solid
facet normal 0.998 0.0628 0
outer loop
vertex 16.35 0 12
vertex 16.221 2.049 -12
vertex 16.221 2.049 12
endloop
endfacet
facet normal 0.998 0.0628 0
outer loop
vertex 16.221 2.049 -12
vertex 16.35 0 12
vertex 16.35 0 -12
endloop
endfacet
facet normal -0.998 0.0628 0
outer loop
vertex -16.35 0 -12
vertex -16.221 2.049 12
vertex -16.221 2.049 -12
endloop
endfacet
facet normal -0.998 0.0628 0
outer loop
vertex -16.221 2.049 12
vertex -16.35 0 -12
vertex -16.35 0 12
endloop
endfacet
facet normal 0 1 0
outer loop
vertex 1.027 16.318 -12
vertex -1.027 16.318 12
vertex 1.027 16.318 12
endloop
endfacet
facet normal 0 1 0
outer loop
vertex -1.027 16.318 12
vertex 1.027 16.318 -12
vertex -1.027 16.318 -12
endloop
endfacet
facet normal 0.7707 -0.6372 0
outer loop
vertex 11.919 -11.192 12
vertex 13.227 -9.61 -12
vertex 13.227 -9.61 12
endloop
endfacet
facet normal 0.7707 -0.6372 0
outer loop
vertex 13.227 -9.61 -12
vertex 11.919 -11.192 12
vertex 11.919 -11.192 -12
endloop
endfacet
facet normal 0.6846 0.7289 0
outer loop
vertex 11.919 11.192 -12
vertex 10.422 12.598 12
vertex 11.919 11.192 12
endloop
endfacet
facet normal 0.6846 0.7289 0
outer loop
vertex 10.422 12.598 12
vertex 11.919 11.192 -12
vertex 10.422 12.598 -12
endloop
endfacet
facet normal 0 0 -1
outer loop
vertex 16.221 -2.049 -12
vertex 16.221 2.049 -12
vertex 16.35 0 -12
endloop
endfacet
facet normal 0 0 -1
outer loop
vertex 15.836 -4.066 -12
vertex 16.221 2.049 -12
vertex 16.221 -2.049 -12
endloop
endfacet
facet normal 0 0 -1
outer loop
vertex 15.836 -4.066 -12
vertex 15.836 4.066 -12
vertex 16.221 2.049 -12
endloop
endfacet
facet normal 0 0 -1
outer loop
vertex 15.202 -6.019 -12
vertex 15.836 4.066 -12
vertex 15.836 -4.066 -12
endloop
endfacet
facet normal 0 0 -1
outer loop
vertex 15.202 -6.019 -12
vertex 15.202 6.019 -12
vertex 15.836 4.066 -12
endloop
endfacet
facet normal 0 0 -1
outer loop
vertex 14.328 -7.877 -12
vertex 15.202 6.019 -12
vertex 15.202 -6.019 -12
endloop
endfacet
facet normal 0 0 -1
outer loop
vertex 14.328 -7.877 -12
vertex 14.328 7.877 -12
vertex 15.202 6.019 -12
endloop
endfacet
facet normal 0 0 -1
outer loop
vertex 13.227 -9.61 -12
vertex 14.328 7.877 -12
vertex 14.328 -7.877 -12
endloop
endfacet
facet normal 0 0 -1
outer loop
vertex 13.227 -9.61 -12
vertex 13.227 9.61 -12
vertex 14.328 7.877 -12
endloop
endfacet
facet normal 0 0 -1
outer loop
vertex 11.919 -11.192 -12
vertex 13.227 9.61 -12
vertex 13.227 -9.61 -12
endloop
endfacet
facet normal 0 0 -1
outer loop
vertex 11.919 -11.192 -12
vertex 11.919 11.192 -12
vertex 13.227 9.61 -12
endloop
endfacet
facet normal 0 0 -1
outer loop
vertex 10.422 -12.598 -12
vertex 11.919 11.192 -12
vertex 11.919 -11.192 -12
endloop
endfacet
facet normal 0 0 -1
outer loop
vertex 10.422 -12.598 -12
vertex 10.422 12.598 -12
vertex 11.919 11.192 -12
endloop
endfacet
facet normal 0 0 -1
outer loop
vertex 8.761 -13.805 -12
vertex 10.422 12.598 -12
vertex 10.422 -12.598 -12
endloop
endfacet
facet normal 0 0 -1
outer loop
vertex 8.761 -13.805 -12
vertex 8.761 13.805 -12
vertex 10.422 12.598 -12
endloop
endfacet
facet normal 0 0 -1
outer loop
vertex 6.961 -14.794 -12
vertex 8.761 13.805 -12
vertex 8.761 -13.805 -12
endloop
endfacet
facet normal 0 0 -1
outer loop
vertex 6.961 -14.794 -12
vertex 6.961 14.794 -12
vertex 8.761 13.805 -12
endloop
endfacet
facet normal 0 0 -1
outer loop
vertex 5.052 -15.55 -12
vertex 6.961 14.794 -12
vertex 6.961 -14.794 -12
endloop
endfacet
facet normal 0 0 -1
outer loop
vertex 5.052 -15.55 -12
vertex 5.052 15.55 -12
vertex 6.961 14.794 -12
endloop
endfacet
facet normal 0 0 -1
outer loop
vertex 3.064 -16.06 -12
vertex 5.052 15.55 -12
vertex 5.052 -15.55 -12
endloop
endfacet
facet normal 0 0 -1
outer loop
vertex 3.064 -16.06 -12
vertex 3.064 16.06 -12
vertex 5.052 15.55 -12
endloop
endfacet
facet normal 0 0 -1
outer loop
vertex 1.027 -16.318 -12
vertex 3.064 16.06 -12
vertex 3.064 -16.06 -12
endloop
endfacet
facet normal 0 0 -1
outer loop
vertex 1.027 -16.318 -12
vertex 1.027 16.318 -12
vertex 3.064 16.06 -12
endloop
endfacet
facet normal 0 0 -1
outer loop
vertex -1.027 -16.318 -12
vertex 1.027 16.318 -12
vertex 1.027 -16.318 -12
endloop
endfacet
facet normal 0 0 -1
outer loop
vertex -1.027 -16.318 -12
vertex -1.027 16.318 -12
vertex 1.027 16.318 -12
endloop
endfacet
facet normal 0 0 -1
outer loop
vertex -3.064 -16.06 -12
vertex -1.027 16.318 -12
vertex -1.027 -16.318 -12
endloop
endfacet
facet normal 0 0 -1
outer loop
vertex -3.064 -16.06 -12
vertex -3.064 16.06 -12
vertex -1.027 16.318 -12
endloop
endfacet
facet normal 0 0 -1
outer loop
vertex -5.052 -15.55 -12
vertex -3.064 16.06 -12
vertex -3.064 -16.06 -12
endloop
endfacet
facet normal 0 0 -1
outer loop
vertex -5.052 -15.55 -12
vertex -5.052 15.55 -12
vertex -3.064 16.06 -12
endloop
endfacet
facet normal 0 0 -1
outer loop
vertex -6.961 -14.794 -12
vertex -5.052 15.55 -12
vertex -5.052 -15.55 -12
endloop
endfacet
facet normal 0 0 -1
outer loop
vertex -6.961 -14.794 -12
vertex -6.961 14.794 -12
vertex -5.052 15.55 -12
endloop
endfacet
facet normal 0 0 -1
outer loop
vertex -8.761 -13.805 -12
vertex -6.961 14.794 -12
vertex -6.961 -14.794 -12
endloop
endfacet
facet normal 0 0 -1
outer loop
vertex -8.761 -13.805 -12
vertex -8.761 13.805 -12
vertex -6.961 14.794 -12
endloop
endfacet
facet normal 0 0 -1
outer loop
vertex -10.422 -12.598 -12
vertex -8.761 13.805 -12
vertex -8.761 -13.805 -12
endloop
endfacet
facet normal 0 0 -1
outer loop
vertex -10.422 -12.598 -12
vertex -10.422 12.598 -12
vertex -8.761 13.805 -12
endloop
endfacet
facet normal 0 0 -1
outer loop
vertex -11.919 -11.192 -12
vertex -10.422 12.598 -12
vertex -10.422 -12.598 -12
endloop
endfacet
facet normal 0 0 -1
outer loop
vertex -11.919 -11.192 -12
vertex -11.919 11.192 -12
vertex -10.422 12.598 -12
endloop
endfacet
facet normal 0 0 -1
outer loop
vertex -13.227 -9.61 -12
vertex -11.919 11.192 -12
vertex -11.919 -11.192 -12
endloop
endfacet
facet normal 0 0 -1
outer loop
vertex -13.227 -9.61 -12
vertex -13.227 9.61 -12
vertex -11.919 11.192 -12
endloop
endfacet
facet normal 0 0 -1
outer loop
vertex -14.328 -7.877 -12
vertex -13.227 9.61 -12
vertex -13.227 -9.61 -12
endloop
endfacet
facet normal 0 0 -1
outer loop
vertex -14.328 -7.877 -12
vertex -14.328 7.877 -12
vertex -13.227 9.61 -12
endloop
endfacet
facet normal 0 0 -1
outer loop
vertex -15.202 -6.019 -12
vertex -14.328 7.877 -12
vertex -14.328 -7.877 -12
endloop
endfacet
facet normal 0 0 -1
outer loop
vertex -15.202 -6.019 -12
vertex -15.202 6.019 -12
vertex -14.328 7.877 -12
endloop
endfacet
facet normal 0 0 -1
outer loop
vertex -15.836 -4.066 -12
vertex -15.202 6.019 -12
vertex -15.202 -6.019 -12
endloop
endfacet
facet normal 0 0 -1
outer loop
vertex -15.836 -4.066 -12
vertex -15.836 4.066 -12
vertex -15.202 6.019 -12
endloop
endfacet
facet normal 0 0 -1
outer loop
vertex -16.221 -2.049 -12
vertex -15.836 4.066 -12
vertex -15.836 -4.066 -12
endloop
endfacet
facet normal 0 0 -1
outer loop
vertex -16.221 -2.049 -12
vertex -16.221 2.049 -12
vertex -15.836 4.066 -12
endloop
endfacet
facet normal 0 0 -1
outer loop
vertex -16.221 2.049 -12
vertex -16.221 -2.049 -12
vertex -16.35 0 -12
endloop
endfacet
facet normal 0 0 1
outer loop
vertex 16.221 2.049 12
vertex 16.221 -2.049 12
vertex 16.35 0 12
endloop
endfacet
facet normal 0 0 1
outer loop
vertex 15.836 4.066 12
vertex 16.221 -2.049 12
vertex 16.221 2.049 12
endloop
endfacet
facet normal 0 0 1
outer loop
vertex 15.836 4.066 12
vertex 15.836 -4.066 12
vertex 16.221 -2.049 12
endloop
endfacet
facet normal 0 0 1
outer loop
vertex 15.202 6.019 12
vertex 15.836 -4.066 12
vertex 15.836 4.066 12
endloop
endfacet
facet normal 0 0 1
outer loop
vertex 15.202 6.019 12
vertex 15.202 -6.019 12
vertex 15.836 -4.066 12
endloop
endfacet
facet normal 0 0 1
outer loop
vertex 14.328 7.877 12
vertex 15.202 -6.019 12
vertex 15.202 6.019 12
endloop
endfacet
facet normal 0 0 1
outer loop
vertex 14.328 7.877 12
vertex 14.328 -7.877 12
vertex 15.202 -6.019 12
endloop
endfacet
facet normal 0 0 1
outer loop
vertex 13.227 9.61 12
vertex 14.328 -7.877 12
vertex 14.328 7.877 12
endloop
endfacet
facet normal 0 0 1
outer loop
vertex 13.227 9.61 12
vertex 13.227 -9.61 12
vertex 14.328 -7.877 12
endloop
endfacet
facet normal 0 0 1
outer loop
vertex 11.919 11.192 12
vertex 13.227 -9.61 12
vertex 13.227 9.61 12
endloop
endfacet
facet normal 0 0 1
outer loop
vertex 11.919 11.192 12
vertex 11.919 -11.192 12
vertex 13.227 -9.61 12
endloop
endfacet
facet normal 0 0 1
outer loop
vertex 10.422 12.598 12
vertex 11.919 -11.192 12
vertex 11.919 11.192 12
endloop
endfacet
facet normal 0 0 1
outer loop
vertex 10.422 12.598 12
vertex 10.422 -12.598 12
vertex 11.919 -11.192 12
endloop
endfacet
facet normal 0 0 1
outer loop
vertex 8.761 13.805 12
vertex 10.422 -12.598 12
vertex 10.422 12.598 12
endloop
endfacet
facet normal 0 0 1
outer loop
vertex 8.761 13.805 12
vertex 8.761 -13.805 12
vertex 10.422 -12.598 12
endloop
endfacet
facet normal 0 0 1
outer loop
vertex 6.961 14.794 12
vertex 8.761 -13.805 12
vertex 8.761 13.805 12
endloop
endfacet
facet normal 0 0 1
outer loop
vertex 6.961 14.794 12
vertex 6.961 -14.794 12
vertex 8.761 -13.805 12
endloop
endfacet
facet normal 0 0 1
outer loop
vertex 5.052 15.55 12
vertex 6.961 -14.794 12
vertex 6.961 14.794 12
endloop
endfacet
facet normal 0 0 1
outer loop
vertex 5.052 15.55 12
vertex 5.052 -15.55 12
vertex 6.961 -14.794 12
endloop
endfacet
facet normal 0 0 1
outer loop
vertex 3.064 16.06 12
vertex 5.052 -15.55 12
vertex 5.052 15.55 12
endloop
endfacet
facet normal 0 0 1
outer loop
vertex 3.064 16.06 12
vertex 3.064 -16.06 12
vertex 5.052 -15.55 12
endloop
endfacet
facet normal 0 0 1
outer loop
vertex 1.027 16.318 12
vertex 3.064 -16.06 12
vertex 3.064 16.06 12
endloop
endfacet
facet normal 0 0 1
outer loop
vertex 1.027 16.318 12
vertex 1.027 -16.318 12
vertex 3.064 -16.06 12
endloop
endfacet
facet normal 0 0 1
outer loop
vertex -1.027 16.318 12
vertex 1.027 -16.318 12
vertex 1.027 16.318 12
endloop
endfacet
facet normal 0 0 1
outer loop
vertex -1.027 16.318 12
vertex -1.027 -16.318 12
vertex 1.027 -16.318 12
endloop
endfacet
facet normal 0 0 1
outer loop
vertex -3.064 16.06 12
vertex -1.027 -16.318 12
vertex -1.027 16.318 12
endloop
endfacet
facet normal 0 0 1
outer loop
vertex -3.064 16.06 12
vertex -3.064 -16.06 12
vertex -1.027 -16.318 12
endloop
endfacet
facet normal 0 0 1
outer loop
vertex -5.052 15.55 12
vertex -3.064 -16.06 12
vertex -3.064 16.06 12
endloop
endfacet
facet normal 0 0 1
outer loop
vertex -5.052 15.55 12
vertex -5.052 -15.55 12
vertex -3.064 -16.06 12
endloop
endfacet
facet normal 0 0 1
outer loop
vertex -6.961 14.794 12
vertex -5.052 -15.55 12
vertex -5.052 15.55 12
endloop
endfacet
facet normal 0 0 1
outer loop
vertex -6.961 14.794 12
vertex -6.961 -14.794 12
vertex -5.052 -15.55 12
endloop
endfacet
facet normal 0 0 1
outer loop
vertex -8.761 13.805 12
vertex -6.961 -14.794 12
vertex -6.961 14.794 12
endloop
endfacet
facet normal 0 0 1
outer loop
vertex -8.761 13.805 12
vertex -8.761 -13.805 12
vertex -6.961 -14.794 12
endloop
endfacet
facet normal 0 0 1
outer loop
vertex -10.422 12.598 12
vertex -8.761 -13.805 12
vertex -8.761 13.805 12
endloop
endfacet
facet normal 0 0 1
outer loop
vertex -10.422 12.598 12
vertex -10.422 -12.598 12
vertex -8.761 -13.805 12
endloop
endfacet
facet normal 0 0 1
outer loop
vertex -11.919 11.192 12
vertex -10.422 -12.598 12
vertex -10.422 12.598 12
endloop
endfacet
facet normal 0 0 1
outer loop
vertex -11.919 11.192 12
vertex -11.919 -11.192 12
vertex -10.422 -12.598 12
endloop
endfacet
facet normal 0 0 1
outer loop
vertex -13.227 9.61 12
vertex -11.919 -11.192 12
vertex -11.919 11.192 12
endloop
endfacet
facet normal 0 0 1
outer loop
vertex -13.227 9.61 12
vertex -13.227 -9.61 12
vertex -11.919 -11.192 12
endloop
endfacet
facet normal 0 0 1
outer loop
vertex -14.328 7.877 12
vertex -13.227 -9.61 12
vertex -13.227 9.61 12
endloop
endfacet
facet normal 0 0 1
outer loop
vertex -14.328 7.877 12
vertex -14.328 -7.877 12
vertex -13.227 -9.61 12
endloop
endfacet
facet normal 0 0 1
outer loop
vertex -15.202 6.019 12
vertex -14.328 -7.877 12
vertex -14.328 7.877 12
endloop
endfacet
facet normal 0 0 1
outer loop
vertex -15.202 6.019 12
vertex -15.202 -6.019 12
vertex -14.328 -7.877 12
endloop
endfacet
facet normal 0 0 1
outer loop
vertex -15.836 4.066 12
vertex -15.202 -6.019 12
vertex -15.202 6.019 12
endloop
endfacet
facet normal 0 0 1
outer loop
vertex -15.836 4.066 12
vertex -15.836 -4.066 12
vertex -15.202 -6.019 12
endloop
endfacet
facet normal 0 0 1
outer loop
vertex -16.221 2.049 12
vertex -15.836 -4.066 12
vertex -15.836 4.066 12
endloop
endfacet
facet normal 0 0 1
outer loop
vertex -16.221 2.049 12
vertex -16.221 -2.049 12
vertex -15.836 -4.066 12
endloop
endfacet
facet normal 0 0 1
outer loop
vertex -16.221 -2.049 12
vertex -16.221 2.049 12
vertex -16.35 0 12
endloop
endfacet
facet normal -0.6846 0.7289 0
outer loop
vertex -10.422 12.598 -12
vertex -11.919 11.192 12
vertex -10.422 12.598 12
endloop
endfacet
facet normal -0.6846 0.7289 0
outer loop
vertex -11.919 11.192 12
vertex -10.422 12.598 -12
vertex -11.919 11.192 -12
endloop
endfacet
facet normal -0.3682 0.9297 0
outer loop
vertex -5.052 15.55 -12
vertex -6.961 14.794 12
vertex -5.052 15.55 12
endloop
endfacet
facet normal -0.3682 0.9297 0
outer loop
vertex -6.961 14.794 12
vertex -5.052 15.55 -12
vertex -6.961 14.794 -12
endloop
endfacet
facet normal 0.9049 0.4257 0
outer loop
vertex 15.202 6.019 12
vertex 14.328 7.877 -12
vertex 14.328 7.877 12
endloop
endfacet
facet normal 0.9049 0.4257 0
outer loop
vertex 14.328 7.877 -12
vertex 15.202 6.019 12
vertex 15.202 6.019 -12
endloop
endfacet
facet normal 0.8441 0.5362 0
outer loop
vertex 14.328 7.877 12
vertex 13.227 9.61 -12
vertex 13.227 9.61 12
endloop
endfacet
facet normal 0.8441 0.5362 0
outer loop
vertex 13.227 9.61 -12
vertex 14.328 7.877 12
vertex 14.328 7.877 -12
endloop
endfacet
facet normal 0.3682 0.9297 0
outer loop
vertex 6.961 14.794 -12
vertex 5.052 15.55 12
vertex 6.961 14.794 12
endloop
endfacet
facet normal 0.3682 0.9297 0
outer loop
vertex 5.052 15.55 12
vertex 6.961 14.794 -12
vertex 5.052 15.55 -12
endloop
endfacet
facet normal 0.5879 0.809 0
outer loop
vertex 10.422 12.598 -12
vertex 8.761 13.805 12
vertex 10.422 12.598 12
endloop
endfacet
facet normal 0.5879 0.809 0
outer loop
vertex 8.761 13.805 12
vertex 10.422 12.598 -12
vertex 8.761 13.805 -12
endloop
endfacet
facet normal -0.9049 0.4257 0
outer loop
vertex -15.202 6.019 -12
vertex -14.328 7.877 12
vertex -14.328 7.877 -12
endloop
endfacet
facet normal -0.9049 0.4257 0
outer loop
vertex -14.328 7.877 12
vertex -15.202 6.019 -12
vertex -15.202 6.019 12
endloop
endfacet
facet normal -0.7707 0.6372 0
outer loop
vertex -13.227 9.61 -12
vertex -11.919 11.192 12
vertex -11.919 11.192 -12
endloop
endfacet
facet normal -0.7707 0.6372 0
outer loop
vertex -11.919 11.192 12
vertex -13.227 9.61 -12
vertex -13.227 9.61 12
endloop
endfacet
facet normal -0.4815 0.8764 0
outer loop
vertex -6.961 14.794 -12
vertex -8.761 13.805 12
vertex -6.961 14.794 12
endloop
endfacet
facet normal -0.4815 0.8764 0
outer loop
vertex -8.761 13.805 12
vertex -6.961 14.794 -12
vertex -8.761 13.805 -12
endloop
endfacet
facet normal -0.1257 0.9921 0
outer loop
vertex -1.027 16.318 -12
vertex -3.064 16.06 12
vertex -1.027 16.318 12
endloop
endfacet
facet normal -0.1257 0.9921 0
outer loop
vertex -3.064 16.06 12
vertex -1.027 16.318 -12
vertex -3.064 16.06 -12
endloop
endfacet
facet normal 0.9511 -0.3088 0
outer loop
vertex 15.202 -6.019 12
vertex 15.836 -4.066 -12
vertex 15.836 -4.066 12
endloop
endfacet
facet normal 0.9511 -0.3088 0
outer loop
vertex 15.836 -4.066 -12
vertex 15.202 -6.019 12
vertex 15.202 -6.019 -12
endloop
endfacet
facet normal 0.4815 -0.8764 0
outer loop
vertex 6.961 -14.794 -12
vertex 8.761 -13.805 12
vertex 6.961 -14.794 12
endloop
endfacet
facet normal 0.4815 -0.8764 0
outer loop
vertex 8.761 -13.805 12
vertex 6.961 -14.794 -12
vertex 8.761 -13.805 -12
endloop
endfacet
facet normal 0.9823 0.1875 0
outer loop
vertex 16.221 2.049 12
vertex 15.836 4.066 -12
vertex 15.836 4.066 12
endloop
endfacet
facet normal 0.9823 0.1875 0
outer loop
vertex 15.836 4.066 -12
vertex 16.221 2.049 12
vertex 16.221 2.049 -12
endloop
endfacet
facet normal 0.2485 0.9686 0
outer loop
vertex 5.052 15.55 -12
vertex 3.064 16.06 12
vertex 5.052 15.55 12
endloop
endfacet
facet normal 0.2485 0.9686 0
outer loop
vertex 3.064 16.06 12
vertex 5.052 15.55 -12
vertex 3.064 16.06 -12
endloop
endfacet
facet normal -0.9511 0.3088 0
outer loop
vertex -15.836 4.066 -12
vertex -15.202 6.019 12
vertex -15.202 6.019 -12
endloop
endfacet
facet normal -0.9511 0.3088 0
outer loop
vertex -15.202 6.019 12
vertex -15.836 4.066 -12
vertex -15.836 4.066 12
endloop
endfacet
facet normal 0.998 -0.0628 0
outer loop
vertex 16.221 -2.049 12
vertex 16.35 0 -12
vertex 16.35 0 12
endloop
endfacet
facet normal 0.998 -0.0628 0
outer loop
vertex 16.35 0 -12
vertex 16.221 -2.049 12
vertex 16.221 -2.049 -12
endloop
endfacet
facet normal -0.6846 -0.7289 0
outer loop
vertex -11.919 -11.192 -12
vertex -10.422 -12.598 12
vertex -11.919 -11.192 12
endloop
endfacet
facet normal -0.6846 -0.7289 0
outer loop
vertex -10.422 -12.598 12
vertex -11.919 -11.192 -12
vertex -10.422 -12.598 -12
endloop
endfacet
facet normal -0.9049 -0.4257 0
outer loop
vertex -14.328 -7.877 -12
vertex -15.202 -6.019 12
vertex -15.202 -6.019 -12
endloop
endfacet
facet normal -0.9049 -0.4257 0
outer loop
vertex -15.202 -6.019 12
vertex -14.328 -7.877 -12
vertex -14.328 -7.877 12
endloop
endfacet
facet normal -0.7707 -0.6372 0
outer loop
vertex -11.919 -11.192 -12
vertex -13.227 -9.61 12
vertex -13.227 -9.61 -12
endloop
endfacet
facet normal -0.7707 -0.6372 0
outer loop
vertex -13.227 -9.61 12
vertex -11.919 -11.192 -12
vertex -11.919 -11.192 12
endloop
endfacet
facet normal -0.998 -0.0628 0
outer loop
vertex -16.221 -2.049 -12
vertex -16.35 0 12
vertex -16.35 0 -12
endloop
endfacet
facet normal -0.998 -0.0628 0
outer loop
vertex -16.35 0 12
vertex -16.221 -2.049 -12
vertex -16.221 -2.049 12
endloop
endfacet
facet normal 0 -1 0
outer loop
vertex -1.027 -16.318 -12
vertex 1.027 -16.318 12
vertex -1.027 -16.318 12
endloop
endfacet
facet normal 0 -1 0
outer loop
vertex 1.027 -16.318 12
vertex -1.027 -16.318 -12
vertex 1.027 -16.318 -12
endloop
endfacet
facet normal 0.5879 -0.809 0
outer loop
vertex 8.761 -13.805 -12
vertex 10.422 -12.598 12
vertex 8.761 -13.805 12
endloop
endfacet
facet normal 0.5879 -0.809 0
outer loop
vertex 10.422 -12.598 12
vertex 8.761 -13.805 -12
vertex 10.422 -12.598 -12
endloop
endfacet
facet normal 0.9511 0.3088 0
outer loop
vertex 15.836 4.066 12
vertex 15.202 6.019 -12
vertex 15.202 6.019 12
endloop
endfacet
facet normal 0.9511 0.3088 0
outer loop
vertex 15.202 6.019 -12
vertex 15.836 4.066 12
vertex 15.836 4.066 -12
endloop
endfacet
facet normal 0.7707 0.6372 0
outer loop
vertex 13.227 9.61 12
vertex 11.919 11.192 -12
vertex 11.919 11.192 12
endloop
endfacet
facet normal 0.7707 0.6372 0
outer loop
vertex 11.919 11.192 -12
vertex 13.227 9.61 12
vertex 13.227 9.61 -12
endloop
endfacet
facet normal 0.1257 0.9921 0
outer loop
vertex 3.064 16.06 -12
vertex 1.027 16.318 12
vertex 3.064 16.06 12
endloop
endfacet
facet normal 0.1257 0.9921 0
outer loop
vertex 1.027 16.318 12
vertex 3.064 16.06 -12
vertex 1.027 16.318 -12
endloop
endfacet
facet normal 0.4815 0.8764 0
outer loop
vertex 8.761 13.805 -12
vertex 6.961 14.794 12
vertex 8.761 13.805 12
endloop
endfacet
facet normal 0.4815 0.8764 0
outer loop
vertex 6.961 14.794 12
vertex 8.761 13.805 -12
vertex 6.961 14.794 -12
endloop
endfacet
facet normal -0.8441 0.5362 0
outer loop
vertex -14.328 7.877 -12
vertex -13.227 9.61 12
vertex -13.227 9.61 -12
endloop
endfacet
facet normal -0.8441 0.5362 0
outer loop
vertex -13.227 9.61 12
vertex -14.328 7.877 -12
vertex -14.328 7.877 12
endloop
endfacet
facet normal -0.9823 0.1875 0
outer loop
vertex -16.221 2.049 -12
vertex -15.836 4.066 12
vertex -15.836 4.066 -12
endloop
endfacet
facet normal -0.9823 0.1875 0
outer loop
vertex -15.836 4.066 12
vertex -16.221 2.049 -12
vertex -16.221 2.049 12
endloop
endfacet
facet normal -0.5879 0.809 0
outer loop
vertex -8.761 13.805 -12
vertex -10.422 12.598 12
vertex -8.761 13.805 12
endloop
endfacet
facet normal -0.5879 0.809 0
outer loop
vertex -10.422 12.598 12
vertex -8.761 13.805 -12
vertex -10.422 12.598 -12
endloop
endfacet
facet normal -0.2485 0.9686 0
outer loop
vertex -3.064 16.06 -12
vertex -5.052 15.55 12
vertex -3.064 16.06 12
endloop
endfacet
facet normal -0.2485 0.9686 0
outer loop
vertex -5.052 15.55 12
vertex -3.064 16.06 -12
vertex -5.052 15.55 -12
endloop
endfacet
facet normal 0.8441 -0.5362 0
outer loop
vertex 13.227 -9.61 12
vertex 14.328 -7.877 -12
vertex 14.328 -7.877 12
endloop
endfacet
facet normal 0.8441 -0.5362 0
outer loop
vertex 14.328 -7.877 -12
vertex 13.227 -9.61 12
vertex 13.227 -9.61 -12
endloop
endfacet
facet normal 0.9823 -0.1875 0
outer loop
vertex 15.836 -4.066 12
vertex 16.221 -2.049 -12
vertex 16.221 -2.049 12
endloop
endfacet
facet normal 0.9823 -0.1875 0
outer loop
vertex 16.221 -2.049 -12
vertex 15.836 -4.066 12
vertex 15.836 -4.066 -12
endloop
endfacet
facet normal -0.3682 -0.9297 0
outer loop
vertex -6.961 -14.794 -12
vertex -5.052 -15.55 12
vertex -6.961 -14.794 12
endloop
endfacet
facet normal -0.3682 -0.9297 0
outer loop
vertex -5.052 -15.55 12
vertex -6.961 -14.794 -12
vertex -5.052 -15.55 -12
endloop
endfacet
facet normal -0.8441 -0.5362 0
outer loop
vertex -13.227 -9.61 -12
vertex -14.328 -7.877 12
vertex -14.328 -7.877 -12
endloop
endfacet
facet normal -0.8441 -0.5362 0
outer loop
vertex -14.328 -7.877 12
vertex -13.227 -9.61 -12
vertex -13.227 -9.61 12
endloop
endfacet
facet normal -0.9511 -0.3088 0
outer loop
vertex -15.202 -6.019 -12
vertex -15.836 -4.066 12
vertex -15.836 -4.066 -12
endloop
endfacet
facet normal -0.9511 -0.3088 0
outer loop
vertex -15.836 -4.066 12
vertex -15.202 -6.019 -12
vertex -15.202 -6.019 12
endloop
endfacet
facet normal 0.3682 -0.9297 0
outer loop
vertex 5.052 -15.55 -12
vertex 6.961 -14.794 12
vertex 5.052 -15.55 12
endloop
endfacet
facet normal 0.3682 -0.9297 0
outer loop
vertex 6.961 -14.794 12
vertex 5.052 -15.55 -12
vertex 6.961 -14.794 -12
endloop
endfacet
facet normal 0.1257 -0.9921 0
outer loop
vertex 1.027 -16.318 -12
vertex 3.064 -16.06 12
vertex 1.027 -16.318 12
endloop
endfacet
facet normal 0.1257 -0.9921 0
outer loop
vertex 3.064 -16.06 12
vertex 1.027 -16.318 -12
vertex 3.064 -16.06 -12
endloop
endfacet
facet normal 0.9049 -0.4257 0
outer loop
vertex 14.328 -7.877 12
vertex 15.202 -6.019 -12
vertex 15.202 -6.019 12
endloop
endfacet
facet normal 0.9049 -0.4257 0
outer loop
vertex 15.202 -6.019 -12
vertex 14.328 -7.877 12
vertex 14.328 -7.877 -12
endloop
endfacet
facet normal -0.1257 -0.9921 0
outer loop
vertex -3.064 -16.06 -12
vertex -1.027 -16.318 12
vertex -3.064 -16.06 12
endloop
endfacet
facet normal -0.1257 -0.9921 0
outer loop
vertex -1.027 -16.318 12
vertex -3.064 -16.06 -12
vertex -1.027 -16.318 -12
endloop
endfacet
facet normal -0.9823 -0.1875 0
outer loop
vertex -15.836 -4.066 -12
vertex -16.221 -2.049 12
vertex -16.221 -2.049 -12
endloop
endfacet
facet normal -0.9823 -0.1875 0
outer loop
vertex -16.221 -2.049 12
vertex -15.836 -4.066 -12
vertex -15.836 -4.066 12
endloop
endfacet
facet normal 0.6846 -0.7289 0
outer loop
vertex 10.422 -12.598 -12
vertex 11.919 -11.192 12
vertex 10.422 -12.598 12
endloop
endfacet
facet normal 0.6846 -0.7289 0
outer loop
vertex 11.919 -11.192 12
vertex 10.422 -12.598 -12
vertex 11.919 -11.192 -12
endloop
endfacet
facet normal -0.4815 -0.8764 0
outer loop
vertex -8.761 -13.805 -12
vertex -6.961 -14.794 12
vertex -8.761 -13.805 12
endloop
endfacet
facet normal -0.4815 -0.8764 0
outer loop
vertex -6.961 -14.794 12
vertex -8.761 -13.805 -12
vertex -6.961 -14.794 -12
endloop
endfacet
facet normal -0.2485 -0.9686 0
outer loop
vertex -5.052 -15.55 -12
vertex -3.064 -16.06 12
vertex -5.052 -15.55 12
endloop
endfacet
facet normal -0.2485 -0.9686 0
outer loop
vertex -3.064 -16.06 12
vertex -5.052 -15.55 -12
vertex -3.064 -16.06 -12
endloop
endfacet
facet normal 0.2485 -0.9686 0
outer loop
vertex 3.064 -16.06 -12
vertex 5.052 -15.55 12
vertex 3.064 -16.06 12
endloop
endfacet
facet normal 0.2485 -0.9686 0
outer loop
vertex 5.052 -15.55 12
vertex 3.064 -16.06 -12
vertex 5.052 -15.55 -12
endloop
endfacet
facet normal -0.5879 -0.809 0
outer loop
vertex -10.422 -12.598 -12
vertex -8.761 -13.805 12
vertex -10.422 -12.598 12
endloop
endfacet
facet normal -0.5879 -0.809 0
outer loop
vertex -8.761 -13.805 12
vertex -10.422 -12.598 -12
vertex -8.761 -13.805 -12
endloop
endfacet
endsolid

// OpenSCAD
$fn = 50;


difference() {
	union() {
		translate(v = [0, 0, -12.0000000000]) {
			cylinder(h = 24, r = 16.3500000000);
		}
	}
	union() {
		translate(v = [0, 0, -100.0000000000]) {
			cylinder(h = 200, r = 0);
		}
	}
}
